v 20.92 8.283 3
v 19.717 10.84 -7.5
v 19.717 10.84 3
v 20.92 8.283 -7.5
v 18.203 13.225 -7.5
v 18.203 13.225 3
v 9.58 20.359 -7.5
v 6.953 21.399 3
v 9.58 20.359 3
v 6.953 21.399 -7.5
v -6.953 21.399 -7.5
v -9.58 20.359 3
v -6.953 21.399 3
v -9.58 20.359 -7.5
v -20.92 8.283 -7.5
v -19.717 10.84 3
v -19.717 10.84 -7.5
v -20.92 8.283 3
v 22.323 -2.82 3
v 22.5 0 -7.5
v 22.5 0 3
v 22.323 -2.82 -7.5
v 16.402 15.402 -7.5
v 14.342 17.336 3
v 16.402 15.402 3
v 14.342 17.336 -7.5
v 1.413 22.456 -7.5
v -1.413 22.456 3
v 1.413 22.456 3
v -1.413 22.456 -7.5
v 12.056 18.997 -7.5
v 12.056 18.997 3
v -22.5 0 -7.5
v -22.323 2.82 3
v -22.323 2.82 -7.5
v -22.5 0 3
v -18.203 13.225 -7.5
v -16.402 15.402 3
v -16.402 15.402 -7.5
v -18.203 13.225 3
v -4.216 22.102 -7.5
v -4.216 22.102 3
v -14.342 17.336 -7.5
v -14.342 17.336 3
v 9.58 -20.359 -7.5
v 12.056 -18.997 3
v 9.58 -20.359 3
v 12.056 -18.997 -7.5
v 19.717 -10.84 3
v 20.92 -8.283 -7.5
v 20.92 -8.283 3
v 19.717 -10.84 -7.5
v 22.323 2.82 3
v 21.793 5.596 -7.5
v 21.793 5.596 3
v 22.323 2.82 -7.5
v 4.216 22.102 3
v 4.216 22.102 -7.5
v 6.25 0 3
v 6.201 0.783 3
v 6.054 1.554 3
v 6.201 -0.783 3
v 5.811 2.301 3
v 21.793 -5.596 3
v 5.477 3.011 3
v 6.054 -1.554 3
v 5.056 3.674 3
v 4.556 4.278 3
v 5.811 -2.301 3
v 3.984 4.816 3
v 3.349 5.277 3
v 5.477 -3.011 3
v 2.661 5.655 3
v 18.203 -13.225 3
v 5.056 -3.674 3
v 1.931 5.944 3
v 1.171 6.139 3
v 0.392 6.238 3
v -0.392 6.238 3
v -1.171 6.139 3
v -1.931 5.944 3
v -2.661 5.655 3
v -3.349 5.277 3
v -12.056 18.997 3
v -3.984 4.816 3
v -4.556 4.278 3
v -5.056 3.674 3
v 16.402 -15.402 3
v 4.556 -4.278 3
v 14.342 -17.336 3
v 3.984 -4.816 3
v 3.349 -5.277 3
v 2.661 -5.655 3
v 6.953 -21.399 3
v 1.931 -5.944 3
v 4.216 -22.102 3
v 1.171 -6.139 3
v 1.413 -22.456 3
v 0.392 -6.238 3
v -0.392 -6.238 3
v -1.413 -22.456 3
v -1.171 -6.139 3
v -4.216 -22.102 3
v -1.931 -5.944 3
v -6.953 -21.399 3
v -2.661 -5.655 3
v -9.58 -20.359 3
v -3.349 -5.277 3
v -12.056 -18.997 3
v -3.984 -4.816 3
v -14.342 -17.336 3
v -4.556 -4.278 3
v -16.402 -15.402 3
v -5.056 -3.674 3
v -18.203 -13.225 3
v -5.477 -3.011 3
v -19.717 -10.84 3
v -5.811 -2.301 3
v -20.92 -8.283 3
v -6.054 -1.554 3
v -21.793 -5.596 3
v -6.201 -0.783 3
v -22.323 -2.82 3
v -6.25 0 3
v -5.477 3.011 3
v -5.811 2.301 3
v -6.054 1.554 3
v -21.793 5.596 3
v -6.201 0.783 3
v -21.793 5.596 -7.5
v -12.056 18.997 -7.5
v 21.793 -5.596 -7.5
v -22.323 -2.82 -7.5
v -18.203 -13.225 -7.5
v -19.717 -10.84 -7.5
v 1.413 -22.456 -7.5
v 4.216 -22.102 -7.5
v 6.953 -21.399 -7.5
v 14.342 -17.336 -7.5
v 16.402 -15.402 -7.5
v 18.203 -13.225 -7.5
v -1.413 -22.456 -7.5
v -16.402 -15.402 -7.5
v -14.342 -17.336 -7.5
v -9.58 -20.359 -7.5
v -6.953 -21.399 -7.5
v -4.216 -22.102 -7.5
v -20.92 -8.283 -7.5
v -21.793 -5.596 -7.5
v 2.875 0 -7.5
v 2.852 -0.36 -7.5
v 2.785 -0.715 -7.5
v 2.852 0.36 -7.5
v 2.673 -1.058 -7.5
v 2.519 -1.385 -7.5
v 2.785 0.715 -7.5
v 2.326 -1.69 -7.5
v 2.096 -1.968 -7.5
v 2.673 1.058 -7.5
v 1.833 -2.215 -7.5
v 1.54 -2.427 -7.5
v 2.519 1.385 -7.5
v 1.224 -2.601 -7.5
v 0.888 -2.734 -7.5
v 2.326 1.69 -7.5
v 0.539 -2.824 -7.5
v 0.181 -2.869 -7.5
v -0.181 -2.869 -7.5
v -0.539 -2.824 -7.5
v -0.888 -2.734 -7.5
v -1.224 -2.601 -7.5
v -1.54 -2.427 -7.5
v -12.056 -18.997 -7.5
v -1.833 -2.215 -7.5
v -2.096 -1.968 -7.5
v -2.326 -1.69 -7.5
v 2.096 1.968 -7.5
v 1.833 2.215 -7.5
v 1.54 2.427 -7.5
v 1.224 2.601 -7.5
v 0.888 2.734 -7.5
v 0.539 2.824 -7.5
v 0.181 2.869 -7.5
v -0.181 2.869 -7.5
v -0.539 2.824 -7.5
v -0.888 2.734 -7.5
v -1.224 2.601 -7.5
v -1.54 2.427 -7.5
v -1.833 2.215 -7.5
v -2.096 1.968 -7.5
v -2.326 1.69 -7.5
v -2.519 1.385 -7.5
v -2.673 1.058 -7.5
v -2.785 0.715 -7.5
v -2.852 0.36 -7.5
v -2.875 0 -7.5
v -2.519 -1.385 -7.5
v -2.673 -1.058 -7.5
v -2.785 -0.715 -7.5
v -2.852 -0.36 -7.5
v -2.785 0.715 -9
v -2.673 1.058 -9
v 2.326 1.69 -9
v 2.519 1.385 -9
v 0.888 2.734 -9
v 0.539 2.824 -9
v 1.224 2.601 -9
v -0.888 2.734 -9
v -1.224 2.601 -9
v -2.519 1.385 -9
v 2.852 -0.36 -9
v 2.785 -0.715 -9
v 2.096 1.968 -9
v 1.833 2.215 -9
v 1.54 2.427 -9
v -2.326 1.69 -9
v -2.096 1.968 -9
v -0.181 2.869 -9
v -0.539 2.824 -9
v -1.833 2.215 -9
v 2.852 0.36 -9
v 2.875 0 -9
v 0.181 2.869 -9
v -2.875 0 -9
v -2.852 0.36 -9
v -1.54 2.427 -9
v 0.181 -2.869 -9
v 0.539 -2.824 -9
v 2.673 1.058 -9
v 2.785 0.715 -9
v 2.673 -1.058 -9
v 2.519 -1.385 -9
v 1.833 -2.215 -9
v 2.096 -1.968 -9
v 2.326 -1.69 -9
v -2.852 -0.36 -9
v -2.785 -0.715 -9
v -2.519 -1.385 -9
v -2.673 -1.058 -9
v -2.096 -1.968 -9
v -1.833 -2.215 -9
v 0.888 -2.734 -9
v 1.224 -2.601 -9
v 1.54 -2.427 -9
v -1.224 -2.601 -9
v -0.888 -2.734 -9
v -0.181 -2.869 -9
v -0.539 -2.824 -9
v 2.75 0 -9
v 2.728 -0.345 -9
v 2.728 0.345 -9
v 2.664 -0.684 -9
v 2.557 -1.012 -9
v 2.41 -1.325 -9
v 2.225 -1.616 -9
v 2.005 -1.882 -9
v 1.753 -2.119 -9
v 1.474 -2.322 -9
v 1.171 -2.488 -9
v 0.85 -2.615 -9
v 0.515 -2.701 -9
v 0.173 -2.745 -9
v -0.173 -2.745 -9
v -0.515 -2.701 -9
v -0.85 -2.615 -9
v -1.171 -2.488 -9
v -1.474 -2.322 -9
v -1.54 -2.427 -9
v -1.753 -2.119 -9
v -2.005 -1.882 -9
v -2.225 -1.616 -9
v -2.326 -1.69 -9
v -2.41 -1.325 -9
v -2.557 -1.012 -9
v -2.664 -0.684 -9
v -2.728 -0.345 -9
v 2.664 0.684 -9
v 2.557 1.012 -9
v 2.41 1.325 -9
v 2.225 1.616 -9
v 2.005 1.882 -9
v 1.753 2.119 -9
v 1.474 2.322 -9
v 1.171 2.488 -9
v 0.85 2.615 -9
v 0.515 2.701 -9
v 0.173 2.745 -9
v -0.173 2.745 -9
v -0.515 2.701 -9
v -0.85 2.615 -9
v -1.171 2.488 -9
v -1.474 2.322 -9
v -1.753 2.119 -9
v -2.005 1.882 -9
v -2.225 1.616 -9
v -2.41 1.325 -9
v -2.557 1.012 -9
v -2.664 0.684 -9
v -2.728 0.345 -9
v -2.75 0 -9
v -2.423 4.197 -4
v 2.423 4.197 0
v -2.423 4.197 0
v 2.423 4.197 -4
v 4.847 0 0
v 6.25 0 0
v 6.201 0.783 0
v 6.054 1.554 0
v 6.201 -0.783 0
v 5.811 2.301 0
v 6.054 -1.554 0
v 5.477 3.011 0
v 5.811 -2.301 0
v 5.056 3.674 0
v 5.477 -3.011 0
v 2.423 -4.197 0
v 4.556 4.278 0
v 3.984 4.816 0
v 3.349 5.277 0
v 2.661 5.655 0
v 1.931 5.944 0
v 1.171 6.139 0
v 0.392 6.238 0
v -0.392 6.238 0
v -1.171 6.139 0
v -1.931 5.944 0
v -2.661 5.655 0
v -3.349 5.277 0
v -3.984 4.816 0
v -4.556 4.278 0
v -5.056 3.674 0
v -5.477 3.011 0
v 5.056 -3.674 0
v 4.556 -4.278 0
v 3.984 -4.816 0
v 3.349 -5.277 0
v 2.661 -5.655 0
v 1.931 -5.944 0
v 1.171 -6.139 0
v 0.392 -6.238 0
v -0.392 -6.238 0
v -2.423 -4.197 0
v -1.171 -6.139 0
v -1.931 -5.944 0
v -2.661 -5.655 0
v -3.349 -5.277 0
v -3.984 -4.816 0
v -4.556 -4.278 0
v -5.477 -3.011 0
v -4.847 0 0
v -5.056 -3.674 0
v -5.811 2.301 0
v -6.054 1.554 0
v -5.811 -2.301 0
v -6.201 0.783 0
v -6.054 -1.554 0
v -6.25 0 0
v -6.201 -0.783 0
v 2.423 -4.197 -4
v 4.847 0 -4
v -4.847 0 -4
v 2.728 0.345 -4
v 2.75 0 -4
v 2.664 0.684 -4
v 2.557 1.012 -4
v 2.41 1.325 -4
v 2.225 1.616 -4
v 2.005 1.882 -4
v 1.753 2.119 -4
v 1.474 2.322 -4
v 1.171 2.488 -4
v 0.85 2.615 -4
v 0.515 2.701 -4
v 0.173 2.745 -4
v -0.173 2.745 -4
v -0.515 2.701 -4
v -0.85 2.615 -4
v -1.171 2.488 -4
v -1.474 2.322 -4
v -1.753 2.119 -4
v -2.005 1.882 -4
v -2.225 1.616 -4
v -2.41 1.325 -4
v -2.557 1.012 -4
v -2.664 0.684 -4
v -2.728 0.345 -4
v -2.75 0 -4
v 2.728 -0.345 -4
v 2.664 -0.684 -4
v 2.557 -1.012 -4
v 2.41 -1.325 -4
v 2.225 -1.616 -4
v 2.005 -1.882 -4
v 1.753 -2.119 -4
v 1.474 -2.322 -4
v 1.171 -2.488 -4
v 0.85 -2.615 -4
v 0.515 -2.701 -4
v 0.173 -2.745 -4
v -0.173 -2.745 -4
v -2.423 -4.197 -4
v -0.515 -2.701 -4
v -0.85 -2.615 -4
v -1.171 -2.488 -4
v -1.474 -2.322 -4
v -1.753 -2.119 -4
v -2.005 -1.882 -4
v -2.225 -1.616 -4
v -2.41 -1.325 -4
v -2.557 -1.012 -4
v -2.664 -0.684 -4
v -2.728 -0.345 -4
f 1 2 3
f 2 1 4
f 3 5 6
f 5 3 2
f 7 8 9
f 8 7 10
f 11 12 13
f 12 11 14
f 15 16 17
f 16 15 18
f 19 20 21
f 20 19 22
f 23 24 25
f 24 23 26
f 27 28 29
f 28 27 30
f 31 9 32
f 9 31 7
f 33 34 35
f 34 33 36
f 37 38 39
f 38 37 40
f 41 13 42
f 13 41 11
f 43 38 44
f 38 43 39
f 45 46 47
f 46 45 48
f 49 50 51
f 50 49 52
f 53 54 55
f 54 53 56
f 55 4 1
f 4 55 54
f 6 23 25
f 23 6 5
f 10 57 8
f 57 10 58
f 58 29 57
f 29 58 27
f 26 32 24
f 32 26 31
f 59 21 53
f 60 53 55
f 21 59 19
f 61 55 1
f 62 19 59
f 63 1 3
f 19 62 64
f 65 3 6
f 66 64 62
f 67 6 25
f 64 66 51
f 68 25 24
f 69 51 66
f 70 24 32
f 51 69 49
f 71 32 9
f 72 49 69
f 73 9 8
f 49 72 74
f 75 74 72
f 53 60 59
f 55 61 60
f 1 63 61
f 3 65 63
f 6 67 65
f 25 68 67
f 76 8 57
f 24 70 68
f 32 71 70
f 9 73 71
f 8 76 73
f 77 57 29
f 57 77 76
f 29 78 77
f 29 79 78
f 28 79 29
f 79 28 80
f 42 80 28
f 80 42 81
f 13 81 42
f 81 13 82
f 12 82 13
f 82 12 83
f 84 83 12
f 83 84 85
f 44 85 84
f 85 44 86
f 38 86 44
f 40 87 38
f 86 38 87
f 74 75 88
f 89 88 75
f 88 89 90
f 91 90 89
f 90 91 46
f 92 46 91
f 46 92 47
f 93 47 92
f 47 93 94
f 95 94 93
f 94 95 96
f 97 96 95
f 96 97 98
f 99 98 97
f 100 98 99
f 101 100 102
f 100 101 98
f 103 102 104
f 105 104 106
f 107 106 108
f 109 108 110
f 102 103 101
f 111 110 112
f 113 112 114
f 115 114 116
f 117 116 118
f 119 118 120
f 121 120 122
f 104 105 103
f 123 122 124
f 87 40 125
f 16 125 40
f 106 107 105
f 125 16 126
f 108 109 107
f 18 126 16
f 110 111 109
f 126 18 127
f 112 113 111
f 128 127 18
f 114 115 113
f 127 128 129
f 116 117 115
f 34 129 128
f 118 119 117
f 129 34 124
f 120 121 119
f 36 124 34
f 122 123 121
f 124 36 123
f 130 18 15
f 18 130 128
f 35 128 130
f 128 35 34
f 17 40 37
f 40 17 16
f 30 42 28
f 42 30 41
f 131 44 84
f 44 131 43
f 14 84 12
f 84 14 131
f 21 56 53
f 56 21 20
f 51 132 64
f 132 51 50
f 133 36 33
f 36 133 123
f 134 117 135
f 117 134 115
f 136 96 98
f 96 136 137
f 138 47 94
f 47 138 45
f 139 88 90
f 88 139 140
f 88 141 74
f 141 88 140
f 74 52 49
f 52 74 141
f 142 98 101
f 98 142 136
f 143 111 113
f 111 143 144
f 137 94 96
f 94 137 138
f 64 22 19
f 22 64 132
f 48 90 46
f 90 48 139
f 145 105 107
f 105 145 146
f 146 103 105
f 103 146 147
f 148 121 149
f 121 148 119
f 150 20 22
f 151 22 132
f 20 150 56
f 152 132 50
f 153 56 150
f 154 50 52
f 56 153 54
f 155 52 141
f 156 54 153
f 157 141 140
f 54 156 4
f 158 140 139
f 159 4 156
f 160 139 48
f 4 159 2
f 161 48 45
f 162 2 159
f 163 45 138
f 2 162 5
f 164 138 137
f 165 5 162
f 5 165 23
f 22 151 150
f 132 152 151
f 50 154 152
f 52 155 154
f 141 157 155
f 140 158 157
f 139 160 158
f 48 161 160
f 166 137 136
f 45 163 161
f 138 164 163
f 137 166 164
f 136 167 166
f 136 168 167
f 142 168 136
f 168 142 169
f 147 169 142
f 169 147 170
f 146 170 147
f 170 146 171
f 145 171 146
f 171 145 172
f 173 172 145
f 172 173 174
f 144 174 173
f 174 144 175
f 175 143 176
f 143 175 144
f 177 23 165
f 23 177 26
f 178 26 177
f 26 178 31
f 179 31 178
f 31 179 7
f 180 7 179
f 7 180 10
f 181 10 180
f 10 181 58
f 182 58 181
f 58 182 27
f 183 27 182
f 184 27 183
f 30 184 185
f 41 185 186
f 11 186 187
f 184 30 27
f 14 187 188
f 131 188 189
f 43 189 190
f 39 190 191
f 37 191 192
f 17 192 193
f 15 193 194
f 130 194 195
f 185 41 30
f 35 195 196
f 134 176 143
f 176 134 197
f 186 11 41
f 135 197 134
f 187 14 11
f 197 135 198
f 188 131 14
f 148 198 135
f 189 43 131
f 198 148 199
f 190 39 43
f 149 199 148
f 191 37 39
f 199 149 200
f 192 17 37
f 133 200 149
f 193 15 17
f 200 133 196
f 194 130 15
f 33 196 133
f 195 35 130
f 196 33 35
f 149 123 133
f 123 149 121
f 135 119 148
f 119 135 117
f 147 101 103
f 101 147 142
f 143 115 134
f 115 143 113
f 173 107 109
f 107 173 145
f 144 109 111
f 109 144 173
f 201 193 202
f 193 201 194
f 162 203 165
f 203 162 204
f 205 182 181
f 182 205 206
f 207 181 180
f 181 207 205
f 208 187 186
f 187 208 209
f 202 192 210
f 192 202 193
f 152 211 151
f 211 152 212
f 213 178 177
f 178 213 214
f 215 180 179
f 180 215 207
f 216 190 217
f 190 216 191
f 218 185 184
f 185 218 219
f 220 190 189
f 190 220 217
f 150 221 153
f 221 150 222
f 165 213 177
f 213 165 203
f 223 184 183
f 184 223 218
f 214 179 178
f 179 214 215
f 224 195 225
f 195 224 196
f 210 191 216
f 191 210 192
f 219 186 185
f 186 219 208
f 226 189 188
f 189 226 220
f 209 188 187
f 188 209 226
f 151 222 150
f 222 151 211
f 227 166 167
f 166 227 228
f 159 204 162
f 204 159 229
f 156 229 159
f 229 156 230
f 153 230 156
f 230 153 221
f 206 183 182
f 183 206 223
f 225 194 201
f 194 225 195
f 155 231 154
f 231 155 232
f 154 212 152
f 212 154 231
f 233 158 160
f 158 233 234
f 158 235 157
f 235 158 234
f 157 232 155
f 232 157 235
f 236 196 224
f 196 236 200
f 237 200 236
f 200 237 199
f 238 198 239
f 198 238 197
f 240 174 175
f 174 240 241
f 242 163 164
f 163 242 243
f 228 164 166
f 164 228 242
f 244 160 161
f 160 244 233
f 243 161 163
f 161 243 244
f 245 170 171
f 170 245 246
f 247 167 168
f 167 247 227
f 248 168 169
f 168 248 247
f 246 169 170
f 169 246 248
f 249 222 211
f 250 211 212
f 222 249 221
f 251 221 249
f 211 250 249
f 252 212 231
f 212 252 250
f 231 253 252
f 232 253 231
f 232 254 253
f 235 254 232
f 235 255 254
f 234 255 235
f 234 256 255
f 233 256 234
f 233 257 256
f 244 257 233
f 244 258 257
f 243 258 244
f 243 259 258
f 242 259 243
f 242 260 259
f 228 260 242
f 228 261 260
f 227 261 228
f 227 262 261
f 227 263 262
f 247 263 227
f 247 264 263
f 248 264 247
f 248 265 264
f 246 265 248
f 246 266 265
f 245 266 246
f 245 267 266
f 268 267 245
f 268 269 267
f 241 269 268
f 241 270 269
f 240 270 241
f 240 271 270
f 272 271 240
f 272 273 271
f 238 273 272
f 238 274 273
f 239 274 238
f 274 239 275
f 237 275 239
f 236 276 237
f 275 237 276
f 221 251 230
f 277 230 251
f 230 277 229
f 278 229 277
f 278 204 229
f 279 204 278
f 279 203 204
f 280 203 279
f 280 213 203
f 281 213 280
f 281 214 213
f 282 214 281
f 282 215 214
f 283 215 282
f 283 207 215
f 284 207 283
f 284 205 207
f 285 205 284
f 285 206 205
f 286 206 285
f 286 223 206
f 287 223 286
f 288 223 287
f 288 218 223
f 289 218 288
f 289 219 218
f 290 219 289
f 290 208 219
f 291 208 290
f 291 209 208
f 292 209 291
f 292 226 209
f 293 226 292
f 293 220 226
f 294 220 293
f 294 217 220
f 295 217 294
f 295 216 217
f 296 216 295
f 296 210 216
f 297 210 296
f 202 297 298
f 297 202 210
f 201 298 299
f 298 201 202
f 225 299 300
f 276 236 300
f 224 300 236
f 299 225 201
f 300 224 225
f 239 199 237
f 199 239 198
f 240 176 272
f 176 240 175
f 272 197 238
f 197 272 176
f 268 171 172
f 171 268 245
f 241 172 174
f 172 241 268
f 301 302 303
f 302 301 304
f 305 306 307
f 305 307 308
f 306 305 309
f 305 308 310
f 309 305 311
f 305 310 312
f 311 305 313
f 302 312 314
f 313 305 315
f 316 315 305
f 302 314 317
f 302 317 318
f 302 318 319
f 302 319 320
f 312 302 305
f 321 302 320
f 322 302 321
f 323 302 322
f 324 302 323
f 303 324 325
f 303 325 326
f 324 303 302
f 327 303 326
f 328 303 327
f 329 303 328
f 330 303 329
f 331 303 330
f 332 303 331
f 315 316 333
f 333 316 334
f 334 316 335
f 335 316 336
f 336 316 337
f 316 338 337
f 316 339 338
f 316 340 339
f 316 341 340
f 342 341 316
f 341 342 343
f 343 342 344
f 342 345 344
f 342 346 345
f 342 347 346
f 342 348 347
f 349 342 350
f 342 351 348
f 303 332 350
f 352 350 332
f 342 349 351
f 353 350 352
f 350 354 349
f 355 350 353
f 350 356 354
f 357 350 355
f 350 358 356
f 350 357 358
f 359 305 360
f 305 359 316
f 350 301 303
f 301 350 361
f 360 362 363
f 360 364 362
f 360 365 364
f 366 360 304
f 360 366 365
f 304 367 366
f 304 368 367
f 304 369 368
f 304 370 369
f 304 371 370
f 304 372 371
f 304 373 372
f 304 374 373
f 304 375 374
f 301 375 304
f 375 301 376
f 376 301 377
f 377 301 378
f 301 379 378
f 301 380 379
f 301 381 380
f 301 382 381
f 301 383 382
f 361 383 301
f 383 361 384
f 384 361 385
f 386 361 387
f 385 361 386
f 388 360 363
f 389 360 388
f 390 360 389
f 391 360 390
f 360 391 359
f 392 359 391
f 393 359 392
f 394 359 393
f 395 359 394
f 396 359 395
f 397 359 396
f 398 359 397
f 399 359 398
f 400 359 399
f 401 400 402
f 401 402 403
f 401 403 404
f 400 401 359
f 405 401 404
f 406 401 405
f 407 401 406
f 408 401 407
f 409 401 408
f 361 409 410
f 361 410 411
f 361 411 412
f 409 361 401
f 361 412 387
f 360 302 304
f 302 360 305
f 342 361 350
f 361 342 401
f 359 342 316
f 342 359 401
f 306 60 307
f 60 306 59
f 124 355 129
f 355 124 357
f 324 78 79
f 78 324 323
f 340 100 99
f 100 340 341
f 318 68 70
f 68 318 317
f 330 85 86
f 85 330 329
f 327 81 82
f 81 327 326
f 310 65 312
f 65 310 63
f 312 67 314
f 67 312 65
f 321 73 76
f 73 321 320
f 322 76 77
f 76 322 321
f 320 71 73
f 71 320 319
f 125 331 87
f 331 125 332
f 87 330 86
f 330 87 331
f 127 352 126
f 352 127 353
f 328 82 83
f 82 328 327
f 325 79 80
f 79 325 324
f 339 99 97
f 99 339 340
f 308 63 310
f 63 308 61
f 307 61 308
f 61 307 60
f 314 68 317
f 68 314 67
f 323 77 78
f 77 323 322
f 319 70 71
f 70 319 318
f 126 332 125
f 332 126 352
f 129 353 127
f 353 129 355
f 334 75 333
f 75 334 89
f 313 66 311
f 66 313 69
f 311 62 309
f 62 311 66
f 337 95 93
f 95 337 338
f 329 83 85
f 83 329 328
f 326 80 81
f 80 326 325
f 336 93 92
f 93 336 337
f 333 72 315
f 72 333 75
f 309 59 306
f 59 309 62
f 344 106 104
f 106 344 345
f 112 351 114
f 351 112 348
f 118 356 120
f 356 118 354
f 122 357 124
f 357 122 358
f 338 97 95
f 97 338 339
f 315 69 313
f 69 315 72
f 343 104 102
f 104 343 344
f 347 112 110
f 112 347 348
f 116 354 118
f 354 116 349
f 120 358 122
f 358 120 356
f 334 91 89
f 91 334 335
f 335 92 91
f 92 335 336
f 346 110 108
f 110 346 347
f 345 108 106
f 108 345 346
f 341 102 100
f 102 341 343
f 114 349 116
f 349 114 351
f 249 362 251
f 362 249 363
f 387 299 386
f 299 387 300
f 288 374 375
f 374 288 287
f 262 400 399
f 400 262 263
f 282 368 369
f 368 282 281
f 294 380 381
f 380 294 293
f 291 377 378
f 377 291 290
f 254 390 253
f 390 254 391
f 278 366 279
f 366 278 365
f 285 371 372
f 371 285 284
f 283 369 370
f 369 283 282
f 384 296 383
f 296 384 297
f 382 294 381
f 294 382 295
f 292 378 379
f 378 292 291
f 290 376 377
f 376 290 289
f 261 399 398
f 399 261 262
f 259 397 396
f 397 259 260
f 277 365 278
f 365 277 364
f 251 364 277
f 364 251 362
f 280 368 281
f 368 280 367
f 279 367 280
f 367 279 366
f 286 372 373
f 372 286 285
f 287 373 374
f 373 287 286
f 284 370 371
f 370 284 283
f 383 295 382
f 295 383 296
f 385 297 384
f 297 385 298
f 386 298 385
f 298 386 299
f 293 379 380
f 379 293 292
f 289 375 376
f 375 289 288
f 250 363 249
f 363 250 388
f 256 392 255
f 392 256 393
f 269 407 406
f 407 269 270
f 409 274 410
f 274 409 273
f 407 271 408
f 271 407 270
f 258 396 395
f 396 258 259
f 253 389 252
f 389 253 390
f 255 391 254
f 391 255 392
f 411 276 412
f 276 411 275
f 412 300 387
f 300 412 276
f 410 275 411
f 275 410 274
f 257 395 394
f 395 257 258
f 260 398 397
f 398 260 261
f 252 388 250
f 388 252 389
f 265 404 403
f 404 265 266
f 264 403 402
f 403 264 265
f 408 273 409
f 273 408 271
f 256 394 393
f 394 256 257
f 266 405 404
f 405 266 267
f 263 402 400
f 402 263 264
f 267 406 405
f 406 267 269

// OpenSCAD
$fn = 50;


difference() {
	union() {
		translate(v = [0, 0, -7.5000000000]) {
			cylinder(h = 10.5000000000, r = 22.5000000000);
		}
		#translate(v = [0, 0, -9.0000000000]) {
			cylinder(h = 9, r = 2.8750000000);
		}
	}
	union() {
		translate(v = [0, 0, 0]) {
			rotate(a = [0, 0, 0]) {
				difference() {
					union() {
						translate(v = [0, 0, -4]) {
							linear_extrude(height = 4) {
								polygon(points = [[4.8468000000, 0.0000000000], [2.4234000000, 4.1974519271], [-2.4234000000, 4.1974519271], [-4.8468000000, 0.0000000000], [-2.4234000000, -4.1974519271], [2.4234000000, -4.1974519271]]);
							}
						}
					}
					union();
				}
			}
		}
		#cylinder(h = 3, r = 6.2500000000);
		#translate(v = [0, 0, -100.0000000000]) {
			cylinder(h = 200, r = 2.7500000000);
		}
	}
}
